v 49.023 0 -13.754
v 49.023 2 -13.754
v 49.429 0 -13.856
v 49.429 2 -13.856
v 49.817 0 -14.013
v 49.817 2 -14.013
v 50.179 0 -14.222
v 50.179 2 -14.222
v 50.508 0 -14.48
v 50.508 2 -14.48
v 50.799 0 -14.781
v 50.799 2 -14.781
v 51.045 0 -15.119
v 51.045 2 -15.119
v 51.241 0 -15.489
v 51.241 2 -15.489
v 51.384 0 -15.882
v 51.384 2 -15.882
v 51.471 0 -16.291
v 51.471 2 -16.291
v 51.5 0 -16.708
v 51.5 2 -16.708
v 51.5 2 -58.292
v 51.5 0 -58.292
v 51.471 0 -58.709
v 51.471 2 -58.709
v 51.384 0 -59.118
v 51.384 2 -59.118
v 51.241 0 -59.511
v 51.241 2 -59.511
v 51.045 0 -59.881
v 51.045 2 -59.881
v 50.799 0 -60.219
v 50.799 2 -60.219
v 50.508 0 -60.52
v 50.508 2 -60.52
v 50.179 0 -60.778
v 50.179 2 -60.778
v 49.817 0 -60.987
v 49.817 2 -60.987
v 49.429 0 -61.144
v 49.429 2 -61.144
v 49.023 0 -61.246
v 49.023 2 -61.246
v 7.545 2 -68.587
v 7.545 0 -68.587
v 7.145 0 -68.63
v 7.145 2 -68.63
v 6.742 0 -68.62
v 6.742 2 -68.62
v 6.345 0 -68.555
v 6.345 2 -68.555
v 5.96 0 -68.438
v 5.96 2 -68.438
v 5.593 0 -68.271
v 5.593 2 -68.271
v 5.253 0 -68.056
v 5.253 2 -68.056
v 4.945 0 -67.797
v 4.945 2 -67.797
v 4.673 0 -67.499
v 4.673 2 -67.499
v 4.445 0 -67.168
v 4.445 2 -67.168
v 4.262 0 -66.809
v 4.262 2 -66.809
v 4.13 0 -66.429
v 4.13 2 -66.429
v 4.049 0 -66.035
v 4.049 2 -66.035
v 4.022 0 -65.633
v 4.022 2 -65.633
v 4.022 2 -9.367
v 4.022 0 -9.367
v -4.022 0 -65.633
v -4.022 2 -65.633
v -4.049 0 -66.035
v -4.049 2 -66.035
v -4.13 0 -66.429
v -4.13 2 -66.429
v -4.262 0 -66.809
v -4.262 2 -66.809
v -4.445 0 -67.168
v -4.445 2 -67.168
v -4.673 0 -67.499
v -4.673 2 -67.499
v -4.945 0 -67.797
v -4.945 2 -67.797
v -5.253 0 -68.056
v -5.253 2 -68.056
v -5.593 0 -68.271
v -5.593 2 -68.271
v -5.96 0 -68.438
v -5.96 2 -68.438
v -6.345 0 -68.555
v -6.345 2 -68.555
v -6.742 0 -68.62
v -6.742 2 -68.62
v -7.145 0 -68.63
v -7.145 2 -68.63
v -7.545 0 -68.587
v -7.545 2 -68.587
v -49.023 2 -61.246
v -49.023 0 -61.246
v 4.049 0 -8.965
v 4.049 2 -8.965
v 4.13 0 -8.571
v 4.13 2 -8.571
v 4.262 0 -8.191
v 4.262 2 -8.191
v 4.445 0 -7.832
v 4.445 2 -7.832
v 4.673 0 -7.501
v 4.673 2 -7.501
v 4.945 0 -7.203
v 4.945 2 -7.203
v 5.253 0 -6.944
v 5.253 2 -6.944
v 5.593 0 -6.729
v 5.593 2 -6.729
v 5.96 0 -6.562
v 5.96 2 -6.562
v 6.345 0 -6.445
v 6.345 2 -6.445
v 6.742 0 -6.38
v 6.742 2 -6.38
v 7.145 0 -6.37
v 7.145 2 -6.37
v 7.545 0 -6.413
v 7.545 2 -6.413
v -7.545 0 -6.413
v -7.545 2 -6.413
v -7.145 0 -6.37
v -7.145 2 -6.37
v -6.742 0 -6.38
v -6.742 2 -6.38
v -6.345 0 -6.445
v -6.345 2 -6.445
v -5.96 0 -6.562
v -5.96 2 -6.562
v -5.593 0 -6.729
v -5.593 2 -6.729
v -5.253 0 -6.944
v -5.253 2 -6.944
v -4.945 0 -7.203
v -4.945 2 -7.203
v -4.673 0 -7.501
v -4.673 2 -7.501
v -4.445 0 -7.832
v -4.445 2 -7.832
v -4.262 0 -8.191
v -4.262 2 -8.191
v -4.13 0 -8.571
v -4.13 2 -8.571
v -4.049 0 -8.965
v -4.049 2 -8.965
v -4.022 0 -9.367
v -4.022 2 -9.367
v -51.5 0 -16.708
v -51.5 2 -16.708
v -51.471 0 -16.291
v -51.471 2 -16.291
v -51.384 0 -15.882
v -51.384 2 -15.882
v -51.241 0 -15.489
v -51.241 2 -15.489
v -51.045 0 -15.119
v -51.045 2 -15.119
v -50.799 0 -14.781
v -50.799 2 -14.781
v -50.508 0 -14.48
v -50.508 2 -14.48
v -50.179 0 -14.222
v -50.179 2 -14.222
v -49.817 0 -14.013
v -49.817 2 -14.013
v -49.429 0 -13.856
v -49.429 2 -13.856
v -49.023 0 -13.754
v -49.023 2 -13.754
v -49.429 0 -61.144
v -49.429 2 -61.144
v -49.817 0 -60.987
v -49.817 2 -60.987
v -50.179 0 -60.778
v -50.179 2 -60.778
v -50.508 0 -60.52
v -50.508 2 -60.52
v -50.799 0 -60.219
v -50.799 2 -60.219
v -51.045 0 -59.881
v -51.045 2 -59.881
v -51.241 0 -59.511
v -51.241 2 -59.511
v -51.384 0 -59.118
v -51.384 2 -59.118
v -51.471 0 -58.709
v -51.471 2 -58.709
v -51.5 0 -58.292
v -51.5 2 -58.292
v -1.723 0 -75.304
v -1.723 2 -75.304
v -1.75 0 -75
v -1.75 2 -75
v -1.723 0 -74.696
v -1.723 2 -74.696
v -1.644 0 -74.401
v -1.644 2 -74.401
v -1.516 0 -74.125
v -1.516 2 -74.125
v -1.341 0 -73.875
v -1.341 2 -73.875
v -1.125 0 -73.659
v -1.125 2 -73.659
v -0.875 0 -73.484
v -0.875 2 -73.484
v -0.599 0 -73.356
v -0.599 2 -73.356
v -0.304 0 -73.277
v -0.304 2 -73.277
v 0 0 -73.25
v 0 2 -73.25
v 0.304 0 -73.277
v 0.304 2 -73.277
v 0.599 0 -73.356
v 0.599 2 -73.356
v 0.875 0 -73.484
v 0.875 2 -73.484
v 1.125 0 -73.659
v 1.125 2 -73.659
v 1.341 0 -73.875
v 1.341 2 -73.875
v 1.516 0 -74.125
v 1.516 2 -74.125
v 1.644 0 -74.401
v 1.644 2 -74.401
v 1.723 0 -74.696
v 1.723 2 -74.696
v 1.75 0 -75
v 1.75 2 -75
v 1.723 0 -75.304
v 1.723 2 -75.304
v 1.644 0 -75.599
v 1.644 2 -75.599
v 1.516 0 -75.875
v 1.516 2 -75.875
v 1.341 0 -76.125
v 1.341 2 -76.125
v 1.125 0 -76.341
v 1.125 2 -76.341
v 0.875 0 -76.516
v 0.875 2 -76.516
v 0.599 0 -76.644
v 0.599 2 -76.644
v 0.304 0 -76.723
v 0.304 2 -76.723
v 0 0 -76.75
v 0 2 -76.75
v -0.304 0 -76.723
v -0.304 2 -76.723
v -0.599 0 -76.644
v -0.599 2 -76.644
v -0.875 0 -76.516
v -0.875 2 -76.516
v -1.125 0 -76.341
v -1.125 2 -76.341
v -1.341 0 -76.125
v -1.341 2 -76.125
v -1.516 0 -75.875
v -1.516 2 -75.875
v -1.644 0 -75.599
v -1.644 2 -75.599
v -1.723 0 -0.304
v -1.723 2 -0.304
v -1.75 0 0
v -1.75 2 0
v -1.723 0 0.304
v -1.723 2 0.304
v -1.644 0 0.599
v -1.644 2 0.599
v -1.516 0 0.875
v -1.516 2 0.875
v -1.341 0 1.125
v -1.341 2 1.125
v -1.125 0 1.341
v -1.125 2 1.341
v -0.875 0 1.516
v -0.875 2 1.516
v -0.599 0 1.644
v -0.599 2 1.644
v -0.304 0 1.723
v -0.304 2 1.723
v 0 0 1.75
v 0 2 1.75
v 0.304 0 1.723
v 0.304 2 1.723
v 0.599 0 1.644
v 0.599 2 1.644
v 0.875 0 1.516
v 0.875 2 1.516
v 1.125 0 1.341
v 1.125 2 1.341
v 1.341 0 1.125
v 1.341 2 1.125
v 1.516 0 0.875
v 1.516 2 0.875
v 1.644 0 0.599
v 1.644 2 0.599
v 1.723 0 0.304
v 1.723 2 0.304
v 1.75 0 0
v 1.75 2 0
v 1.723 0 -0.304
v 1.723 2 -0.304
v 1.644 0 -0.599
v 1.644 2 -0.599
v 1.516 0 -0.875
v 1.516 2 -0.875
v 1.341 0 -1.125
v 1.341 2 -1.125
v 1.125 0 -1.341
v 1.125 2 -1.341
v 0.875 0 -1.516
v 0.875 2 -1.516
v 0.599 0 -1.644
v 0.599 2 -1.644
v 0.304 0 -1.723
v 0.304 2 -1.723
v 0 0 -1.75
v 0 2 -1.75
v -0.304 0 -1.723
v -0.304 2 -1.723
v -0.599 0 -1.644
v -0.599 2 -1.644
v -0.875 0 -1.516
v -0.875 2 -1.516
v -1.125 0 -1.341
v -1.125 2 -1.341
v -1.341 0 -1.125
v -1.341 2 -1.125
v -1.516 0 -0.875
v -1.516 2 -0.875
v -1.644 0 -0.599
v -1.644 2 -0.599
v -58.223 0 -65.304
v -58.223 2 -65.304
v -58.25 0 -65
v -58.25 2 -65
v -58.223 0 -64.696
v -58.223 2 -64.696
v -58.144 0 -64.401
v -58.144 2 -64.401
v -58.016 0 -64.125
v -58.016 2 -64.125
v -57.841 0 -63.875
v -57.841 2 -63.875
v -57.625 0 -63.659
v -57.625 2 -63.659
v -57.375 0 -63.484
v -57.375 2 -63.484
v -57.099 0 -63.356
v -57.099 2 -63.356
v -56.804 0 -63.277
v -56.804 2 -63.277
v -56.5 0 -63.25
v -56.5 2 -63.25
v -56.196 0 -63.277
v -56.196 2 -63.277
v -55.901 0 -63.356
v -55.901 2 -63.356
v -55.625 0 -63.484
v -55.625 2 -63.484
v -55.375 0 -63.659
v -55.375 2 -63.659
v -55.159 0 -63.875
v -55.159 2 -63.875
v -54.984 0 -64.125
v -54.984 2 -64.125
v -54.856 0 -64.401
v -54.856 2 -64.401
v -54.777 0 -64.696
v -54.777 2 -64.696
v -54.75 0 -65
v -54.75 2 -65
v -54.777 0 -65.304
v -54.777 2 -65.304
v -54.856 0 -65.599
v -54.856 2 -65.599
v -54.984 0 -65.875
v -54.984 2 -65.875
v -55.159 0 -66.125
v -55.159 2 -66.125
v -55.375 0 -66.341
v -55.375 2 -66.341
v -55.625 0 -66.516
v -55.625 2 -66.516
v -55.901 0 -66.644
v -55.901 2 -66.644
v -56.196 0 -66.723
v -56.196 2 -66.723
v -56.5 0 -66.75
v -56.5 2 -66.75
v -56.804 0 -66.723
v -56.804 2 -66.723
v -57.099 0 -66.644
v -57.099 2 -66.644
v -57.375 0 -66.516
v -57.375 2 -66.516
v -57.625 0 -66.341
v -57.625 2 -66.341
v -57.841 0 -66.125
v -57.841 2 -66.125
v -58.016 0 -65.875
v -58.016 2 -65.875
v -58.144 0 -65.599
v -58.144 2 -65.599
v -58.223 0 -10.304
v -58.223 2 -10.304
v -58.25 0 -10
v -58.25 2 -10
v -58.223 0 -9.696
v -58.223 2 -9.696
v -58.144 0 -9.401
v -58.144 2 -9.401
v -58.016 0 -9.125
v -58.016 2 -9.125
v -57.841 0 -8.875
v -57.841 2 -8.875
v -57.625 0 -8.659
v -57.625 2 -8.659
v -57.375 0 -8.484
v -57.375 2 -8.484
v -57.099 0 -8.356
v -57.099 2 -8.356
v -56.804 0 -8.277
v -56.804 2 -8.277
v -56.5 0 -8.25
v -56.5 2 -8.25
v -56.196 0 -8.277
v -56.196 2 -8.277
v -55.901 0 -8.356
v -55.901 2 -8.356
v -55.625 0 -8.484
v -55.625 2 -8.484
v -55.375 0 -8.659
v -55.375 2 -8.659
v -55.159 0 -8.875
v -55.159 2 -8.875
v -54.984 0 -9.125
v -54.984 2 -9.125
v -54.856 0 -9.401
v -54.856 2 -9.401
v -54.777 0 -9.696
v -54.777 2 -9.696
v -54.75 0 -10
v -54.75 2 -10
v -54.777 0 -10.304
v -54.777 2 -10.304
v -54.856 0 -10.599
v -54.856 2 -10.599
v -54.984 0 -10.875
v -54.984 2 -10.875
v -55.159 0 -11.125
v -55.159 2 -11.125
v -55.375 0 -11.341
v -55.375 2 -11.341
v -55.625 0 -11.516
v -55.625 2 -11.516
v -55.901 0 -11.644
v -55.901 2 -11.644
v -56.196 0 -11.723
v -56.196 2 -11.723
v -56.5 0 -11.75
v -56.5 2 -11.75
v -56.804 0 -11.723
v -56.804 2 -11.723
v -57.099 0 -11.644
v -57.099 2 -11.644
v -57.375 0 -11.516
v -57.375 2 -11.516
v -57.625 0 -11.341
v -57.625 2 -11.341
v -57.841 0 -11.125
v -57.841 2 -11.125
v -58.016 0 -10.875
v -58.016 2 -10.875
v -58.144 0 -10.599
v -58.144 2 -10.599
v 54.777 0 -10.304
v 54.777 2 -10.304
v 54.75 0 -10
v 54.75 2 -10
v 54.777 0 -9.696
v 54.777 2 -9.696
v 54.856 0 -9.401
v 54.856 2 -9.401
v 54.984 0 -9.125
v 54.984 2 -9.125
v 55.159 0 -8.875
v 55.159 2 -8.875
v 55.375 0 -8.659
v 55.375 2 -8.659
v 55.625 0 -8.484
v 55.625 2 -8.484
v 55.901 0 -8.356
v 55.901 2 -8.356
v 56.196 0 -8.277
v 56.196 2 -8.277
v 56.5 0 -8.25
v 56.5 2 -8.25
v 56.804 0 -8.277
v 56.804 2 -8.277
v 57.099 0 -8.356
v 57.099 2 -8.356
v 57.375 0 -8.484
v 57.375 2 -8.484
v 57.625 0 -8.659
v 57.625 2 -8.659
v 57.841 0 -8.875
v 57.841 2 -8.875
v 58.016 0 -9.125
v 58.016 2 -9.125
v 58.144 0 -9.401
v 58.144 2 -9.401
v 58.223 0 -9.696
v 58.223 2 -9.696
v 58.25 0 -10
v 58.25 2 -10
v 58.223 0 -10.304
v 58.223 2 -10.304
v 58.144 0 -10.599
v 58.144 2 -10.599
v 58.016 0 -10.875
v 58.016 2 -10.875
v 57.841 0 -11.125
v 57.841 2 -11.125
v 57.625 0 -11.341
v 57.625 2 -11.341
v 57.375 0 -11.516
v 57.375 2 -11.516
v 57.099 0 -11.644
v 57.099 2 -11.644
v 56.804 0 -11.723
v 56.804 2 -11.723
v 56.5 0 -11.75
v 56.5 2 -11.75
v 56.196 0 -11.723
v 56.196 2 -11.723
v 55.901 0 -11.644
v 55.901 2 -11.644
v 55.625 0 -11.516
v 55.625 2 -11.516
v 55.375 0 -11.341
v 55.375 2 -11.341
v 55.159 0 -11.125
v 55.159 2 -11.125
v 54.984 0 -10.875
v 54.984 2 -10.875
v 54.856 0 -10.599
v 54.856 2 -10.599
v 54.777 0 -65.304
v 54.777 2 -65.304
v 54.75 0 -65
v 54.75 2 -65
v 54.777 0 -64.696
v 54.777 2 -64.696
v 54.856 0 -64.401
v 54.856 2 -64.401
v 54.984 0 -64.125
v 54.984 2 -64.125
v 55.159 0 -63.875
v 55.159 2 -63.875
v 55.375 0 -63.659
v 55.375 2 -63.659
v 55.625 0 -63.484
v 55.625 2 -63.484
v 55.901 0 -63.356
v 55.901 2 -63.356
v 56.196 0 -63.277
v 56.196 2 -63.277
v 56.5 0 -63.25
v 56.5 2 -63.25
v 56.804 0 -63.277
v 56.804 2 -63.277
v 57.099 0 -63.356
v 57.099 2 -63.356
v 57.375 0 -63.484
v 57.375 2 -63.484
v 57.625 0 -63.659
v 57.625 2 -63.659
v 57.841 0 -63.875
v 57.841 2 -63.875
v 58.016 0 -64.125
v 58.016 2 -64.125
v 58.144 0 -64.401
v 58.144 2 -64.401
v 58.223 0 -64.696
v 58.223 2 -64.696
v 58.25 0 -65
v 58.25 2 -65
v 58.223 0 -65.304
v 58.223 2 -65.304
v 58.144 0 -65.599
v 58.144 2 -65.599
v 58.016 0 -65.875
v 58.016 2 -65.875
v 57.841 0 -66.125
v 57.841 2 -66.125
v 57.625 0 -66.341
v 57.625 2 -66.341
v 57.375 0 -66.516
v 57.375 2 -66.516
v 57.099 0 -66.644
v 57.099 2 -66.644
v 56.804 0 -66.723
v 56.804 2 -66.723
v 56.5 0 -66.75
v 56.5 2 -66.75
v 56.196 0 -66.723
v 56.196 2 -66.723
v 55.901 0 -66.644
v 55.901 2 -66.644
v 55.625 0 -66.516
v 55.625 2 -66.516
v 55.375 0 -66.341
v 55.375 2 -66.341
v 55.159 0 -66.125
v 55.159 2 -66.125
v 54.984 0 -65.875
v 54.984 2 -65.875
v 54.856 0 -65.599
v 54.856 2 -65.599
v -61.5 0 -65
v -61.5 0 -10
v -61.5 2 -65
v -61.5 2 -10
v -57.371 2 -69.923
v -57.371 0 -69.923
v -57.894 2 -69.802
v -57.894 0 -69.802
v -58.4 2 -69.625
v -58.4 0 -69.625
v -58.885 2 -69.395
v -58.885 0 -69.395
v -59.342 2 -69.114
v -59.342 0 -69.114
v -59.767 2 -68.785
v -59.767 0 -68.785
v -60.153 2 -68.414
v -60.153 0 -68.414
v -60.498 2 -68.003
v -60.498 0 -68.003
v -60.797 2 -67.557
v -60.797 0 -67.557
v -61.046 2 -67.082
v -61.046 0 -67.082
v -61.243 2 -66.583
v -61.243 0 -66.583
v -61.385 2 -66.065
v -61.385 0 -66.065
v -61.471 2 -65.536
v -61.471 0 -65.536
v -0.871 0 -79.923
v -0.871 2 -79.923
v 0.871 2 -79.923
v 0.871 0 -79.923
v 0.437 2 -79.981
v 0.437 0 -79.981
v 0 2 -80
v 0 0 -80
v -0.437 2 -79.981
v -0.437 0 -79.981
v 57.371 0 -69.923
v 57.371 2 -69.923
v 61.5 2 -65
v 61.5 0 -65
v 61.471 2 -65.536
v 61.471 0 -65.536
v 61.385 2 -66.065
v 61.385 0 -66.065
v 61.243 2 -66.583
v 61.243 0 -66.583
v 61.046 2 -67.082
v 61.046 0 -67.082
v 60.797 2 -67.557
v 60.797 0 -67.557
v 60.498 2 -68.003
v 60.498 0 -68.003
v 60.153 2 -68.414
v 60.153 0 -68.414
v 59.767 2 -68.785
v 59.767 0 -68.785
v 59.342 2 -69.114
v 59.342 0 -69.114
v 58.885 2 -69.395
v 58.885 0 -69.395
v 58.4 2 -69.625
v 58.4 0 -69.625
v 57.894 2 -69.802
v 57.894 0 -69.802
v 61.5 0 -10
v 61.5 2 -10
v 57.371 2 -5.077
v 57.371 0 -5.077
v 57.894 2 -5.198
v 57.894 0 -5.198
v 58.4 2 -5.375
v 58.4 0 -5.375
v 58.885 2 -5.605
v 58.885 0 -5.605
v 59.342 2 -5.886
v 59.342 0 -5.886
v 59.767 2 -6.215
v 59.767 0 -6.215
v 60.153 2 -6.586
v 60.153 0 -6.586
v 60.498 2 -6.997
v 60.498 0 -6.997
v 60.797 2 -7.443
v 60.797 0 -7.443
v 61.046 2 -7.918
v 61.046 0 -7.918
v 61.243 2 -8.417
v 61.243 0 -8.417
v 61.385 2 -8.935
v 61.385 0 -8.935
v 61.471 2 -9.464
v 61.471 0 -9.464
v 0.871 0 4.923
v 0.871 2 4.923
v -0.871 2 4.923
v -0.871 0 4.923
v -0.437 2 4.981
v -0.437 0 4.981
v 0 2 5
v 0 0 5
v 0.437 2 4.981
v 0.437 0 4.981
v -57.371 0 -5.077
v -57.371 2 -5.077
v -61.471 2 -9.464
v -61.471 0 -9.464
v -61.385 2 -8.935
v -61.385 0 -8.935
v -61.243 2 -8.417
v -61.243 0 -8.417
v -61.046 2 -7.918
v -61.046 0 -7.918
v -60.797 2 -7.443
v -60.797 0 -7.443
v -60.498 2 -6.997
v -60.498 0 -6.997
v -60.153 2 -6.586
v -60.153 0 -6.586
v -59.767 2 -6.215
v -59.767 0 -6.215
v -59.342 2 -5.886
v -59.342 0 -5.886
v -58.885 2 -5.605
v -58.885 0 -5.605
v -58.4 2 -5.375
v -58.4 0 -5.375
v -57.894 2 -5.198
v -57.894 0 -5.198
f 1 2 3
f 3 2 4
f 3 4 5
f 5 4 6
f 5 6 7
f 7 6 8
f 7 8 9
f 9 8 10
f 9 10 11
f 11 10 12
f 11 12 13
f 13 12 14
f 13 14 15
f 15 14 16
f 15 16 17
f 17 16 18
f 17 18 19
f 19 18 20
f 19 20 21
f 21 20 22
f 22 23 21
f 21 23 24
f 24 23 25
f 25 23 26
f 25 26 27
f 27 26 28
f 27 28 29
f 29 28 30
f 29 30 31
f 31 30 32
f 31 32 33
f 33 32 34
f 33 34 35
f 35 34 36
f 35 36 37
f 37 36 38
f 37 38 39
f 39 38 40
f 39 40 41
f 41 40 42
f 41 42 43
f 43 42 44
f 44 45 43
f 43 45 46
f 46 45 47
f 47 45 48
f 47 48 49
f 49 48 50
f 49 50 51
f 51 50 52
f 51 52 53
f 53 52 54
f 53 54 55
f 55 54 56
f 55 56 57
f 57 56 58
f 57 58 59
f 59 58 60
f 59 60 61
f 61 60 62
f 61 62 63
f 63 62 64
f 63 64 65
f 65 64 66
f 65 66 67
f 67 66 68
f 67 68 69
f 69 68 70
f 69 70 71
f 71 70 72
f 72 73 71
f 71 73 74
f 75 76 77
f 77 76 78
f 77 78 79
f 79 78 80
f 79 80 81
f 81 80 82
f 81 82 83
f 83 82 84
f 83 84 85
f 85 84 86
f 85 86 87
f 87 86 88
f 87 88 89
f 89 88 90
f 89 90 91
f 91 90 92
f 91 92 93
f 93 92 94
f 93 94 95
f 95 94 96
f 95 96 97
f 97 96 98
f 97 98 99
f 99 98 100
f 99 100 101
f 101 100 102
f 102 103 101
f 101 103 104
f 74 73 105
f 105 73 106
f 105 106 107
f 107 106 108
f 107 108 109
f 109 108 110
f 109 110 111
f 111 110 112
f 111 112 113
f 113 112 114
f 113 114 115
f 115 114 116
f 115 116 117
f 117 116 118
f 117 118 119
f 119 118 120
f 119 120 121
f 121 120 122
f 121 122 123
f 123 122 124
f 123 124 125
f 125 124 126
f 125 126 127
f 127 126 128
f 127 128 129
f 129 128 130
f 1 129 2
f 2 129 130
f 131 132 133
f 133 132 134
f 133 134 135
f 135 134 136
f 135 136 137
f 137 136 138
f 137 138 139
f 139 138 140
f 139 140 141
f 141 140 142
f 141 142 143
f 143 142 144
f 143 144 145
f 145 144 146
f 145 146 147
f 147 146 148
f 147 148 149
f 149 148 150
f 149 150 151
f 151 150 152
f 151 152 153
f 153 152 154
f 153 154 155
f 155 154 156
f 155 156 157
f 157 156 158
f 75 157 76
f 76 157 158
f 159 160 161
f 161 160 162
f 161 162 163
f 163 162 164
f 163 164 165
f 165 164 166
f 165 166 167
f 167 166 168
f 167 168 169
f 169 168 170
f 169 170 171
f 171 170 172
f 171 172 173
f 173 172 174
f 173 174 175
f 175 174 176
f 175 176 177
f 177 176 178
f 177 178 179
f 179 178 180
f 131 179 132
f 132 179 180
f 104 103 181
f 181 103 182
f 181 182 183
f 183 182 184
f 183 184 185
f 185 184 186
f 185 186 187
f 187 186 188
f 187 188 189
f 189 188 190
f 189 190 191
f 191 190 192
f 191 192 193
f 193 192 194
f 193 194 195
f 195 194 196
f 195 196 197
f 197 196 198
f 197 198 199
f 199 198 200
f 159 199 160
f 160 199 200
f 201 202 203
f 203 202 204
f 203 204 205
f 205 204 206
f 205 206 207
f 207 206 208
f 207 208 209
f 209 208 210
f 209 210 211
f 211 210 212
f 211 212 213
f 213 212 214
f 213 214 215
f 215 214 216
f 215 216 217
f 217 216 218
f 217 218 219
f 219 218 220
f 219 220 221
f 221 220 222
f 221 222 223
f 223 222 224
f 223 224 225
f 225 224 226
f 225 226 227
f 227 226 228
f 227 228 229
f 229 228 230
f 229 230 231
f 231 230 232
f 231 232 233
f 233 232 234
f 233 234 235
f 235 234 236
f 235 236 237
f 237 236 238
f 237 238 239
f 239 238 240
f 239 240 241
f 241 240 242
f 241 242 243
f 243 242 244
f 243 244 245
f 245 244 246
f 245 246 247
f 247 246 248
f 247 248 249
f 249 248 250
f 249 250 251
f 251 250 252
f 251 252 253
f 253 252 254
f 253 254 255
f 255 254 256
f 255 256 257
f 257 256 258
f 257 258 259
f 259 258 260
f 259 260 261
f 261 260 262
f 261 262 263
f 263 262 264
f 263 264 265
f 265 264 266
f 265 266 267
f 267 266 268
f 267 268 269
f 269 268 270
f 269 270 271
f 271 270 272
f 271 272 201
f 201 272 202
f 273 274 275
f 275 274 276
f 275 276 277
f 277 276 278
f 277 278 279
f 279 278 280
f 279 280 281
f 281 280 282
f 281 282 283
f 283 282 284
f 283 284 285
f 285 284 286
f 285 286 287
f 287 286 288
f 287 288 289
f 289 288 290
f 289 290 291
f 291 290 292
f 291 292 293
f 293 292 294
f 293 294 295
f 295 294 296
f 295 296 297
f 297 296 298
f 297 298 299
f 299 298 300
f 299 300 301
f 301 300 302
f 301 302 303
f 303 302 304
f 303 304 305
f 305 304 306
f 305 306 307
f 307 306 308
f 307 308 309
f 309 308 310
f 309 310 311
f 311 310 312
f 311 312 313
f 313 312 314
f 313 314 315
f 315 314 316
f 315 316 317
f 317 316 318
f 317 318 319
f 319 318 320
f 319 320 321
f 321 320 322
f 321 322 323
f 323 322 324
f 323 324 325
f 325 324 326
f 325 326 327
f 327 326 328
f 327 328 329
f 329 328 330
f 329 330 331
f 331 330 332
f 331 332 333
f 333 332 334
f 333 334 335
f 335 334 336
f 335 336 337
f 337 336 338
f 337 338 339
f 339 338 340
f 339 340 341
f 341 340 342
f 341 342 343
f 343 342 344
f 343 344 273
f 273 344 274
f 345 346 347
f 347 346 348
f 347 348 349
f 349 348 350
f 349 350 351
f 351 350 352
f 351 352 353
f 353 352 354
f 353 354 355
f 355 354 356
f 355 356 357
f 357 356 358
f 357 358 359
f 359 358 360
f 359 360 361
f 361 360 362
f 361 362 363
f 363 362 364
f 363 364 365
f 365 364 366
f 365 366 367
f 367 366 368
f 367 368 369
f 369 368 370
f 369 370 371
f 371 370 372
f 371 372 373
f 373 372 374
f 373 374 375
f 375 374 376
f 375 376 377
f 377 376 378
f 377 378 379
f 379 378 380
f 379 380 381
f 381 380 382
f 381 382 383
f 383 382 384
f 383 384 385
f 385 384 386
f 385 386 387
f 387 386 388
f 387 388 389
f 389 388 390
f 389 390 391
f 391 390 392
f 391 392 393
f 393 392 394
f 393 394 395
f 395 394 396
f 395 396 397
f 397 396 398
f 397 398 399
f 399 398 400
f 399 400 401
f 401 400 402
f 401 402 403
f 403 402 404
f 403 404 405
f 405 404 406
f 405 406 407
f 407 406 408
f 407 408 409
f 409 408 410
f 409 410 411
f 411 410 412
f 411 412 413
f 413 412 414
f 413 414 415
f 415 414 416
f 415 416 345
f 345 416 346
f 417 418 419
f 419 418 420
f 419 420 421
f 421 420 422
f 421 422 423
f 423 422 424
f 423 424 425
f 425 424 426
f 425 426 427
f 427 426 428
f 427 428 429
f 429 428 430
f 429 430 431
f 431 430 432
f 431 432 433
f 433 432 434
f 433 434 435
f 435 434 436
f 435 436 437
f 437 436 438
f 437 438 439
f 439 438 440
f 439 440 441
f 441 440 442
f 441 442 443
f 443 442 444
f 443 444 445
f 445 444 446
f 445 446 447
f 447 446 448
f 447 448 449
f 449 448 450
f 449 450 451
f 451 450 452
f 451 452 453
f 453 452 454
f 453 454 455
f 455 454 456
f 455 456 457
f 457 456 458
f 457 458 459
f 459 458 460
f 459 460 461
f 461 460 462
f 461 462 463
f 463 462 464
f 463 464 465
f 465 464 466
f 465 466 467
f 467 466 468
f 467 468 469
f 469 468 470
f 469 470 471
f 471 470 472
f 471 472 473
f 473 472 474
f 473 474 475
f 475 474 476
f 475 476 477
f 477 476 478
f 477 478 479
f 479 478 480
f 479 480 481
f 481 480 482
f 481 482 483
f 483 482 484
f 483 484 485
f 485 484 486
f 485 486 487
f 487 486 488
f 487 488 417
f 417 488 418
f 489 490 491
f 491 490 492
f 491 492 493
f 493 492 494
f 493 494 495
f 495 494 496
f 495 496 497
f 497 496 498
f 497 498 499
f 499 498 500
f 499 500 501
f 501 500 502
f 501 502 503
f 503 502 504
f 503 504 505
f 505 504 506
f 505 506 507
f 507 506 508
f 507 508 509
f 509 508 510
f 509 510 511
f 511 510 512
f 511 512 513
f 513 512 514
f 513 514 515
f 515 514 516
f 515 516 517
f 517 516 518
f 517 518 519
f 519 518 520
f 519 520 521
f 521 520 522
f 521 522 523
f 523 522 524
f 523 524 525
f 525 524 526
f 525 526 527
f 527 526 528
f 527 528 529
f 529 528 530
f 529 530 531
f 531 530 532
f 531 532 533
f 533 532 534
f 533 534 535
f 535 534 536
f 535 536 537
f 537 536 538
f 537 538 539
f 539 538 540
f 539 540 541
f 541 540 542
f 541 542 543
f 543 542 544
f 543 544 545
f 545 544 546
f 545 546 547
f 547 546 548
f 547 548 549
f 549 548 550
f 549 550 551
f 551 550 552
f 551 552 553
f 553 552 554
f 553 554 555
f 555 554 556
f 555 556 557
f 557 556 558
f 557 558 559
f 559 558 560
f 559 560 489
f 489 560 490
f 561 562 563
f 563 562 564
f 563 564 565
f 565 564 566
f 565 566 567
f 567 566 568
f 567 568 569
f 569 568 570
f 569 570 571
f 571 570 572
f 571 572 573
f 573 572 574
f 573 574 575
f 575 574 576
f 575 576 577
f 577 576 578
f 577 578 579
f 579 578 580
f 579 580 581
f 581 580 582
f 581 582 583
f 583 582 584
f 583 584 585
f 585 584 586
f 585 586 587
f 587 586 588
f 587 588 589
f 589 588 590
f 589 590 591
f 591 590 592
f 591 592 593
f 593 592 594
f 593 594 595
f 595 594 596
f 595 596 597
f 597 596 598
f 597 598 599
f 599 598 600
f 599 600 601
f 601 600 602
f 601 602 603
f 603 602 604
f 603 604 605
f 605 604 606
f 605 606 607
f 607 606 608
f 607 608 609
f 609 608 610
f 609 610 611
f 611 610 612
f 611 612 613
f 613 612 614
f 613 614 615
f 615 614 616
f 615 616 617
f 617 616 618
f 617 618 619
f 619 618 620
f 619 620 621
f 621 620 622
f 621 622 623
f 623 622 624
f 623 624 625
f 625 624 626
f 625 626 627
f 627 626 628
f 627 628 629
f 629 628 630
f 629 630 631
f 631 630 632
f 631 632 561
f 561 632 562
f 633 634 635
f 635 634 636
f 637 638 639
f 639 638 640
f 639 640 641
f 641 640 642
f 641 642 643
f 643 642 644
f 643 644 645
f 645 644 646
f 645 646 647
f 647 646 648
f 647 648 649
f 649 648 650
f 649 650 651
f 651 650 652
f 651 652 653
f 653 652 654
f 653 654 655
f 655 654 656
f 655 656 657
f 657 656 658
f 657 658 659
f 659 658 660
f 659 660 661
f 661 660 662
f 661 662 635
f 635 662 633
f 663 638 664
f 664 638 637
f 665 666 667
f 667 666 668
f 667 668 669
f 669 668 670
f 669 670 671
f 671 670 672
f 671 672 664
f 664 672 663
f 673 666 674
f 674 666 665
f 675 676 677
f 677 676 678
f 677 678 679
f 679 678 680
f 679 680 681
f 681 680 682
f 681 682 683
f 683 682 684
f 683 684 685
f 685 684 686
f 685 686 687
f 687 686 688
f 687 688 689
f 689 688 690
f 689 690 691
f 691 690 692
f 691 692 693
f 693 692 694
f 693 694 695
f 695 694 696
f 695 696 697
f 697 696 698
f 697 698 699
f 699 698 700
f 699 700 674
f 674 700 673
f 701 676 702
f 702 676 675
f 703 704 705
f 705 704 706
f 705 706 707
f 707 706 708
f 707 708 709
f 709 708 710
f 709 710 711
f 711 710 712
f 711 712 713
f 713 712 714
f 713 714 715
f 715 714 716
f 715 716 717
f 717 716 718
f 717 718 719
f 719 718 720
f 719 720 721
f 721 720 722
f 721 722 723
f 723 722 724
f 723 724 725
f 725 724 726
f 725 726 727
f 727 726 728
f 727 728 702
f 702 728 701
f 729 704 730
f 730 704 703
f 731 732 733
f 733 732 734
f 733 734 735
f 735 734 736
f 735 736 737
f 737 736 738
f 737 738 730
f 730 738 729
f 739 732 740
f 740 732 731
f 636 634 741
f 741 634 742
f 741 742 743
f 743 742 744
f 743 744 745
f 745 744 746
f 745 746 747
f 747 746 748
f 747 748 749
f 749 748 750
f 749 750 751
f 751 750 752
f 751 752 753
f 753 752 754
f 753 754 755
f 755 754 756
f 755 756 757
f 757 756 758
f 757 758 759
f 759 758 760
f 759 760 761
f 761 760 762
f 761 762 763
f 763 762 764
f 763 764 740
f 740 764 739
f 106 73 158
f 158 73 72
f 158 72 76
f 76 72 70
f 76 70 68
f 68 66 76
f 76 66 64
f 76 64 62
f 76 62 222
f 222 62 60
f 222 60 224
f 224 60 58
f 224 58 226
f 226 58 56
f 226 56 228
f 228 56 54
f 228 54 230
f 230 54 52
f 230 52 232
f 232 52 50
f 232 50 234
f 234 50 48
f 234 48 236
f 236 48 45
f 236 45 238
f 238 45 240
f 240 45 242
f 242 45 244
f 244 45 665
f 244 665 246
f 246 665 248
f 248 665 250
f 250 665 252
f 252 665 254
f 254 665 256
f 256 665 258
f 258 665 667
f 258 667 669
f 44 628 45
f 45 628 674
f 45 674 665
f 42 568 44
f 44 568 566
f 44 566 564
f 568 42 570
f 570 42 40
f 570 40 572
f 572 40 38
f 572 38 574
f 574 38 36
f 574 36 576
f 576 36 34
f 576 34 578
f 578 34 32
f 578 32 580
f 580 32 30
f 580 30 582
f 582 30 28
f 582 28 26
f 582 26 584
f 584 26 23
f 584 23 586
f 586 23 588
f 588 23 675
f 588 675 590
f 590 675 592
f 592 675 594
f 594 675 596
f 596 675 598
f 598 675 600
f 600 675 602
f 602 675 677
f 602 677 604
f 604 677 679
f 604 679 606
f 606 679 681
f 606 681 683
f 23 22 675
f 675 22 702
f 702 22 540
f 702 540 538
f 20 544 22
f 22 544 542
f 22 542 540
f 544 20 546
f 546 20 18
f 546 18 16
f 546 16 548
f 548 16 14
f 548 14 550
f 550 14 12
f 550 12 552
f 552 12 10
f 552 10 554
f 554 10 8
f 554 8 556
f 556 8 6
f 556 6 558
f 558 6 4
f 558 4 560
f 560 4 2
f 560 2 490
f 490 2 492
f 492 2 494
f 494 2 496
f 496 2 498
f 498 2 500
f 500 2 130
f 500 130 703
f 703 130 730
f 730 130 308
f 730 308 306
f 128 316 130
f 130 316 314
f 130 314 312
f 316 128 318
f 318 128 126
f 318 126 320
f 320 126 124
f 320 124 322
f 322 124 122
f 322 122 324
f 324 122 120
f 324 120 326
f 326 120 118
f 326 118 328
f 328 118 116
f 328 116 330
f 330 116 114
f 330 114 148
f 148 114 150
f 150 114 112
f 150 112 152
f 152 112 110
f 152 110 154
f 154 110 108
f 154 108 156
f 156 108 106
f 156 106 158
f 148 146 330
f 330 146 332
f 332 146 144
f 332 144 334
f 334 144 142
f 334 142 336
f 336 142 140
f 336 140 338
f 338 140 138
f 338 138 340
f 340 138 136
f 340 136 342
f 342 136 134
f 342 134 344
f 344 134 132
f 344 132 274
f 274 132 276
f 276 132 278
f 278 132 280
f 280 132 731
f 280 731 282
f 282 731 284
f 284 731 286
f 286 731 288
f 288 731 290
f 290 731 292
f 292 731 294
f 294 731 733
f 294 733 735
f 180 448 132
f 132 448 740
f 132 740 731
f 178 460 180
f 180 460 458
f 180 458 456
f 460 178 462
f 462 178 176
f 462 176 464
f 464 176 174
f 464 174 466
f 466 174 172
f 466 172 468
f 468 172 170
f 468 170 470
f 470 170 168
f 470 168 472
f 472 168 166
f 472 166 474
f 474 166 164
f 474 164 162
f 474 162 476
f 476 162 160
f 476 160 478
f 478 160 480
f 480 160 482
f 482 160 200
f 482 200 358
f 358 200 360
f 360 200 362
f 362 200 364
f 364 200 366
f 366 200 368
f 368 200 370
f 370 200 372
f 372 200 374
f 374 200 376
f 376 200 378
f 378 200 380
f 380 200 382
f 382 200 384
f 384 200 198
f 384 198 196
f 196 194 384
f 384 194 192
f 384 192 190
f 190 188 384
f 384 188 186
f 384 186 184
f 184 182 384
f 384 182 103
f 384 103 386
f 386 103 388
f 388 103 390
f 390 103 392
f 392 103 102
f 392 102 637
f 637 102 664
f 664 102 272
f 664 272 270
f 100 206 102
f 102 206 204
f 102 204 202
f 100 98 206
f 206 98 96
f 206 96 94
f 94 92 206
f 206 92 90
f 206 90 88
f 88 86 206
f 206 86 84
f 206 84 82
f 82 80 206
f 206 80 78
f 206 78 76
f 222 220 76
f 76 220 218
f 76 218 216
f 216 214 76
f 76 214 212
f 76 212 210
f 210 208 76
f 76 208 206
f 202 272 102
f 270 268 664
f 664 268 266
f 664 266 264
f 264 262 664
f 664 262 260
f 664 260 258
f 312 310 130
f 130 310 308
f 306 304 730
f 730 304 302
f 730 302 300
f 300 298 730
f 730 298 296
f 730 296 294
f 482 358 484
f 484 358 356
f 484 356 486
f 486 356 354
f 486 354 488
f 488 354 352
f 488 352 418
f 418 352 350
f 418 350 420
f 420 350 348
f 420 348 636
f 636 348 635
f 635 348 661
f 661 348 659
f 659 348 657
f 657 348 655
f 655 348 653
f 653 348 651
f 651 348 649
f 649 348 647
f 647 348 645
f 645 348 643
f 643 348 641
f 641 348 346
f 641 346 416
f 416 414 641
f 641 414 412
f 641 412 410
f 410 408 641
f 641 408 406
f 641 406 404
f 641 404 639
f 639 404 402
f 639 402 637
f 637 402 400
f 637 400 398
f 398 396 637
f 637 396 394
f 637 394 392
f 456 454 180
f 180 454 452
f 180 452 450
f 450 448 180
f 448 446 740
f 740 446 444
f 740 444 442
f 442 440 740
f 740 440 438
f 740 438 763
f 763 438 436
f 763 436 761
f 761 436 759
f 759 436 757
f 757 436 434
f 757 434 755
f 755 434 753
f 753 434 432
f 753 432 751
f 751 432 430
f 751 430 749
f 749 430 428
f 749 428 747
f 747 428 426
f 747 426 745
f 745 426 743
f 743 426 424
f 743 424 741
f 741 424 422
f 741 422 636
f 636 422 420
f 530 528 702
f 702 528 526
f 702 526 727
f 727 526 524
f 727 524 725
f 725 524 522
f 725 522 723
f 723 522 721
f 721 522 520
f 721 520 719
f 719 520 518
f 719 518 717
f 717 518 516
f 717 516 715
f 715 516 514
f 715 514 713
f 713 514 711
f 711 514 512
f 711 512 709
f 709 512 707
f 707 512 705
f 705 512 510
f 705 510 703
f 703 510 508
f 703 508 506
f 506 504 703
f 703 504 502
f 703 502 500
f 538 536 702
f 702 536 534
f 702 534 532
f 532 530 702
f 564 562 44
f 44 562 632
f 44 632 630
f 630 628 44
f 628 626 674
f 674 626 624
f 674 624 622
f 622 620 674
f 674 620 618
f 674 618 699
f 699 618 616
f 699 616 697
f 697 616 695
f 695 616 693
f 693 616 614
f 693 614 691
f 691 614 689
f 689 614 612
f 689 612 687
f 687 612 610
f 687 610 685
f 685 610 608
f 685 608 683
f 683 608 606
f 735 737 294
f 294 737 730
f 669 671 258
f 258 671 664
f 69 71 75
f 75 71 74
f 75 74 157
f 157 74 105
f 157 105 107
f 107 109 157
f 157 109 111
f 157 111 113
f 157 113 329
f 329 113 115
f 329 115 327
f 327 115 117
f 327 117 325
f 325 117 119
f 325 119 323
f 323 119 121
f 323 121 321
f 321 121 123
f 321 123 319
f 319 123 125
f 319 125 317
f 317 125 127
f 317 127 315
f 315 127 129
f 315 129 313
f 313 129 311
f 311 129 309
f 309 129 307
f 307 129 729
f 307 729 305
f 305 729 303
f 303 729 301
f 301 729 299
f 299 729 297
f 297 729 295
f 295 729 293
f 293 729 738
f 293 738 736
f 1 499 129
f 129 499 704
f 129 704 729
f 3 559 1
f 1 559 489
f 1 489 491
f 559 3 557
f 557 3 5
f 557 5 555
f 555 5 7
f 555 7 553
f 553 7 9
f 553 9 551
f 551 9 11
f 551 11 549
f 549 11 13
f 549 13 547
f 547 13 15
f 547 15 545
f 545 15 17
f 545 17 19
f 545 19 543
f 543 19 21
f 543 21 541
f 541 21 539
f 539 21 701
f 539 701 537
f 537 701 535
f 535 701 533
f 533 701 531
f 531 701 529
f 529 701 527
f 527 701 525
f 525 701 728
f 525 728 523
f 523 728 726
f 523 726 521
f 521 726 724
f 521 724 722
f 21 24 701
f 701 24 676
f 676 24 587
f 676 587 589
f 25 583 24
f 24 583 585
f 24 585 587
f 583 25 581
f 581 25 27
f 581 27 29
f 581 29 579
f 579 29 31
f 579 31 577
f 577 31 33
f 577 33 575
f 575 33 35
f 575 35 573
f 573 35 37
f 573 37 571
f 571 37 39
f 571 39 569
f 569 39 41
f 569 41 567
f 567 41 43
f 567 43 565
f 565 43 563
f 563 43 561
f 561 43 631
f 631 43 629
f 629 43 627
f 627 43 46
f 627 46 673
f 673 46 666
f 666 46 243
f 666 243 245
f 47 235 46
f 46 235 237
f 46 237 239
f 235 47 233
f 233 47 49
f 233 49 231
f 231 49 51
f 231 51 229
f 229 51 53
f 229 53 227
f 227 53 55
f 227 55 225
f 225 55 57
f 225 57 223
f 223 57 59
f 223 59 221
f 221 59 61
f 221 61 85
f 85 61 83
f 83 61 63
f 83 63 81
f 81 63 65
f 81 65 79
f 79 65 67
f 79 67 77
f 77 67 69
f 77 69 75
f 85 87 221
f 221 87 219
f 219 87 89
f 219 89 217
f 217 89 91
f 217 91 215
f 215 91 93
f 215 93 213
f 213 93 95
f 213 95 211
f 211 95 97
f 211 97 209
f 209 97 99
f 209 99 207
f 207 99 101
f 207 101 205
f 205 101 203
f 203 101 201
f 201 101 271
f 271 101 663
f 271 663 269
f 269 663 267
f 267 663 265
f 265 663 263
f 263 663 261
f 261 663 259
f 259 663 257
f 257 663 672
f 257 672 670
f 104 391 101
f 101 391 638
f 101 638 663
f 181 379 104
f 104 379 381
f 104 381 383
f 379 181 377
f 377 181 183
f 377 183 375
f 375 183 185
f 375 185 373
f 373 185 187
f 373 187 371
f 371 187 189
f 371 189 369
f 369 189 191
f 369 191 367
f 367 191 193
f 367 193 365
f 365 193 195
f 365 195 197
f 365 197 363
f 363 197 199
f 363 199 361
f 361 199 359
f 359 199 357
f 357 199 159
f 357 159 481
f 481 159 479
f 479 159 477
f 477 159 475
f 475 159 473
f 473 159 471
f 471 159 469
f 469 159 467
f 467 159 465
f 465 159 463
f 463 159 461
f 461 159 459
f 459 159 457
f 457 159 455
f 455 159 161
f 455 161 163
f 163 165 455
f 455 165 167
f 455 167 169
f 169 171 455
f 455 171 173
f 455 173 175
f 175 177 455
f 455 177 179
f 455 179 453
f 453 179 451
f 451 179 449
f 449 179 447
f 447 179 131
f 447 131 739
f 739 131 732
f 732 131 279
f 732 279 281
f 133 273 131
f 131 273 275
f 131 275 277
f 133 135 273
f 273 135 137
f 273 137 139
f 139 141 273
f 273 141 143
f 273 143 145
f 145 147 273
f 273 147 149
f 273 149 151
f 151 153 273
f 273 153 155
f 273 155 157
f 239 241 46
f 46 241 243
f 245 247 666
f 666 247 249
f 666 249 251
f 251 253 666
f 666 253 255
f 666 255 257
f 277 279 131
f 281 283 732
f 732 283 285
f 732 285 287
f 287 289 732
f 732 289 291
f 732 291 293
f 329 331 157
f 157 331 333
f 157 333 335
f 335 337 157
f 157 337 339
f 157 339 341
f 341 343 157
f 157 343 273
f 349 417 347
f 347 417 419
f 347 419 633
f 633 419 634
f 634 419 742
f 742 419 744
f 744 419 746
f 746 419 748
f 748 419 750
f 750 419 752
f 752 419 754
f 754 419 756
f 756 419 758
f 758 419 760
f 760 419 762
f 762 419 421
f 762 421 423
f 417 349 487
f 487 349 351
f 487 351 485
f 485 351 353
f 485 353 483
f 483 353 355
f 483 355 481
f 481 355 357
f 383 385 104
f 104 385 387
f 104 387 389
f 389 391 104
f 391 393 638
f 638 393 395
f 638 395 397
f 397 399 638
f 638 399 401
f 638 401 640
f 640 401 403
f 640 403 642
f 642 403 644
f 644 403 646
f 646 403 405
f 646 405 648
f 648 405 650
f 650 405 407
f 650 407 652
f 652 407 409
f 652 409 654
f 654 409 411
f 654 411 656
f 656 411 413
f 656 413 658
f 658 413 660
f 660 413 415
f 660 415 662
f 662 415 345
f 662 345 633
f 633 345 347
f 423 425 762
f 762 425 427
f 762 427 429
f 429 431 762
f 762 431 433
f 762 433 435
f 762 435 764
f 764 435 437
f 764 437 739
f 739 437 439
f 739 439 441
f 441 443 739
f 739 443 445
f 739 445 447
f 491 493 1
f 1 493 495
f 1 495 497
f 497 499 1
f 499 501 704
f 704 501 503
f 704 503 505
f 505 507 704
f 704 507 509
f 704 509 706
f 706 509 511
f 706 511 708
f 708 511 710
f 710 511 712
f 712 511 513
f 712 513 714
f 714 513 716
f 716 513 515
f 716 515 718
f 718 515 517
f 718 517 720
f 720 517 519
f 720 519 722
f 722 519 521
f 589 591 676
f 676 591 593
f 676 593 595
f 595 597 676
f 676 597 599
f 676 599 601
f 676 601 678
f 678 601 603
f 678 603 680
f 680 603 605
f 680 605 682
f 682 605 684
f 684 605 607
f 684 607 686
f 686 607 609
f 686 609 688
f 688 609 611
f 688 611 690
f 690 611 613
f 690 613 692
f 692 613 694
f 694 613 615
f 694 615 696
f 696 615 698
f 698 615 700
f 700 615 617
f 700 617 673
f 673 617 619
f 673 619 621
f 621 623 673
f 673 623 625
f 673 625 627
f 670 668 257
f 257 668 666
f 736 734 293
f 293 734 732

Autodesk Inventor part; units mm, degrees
ref_plane "YZ Plane" through (0, 0, 0) normal (1, 0, 0) x (0, 1, 0)
ref_plane "XZ Plane" through (0, 0, 0) normal (0, 1, 0) x (-1, 0, 0)
ref_plane "XY Plane" through (0, 0, 0) normal (0, 0, 1) x (1, 0, 0)
sketch "Szkic1" plane through (0, 0, 0) normal (0, 1, 0) x (-1, 0, 0)
  line L0 (0, 0) -> (0, -75) construction
  line L1 (-56.5, -37.5) -> (56.5, -37.5) construction
  line L2 (56.5, -10) -> (56.5, -65) construction
  line L3 (-56.5, -10) -> (-56.5, -65) construction
  circle A0 centre (56.5, -10) radius 5
  circle A1 centre (56.5, -65) radius 5
  circle A2 centre (0, 0) radius 5
  circle A3 centre (0, -75) radius 5
  circle A4 centre (-56.5, -10) radius 5
  circle A5 centre (-56.5, -65) radius 5
  line L4 (0.8714, 4.9235) -> (57.3714, -5.0765)
  line L5 (57.3714, -69.9235) -> (0.8714, -79.9235)
  line L6 (-0.8714, -79.9235) -> (-57.3714, -69.9235)
  line L7 (-57.3714, -5.0765) -> (-0.8714, 4.9235)
  line L8 (-61.5, -10) -> (-61.5, -65)
  line L9 (61.5, -10) -> (61.5, -65)
  point P0 (0, -37.5)
  point P1 (0, -37.5)
  dimension "d0" = 75
  dimension "d1" = 113
  dimension "d2" = 55
  dimension "d3" = 55
  dimension "d4" = 10
  dimension "d5" = 10
  dimension "d6" = 10
  dimension "d7" = 10
  dimension "d8" = 10
  dimension "d9" = 10
extrude "Wyciągnięcie proste1" add sketch "Szkic1" along normal blind 2
sketch "Szkic2" plane through (0, 2, 0) normal (0, 1, 0) x (1, 0, 0)
  arc A0 (-0.8714, -4.9235) -> (0.8714, -4.9235) centre (0, 0) ccw projected
  arc A1 (0.8714, 79.9235) -> (-0.8714, 79.9235) centre (0, 75) ccw projected
  arc A2 (61.5, 65) -> (57.3714, 69.9235) centre (56.5, 65) ccw projected
  arc A3 (57.3714, 5.0765) -> (61.5, 10) centre (56.5, 10) ccw projected
  arc A4 (-61.5, 10) -> (-57.3714, 5.0765) centre (-56.5, 10) ccw projected
  arc A5 (-57.3714, 69.9235) -> (-61.5, 65) centre (-56.5, 65) ccw projected
hole "Otwór1" at (-56.5, 2, -65) at (-56.5, 2, -10) at (0, 2, 0) at (56.5, 2, -10) at (0, 2, -75) at (56.5, 2, -65) direction (0, -1, 0) diameter 3.5 depth 8
sketch "Szkic3" plane through (0, 2, 0) normal (0, 1, 0) x (1, 0, 0)
  circle A0 centre (0, 75) radius 1.75 projected
  circle A1 centre (0, 0) radius 1.75 projected
  circle A2 centre (-56.5, 65) radius 1.75 projected
  circle A3 centre (-56.5, 10) radius 1.75 projected
  circle A4 centre (56.5, 10) radius 1.75 projected
  circle A5 centre (56.5, 65) radius 1.75 projected
  arc A6 (-61.5, 10) -> (-57.3714, 5.0765) centre (-56.5, 10) ccw projected
  line L0 (-57.3714, 5.0765) -> (-0.8714, -4.9235) projected
  arc A7 (-0.8714, -4.9235) -> (0.8714, -4.9235) centre (0, 0) ccw projected
  line L1 (0.8714, -4.9235) -> (57.3714, 5.0765) projected
  arc A8 (57.3714, 5.0765) -> (61.5, 10) centre (56.5, 10) ccw projected
  line L2 (61.5, 10) -> (61.5, 65) projected
  arc A9 (61.5, 65) -> (57.3714, 69.9235) centre (56.5, 65) ccw projected
  line L3 (57.3714, 69.9235) -> (0.8714, 79.9235) projected
  arc A10 (0.8714, 79.9235) -> (-0.8714, 79.9235) centre (0, 75) ccw projected
  line L4 (-0.8714, 79.9235) -> (-57.3714, 69.9235) projected
  arc A11 (-57.3714, 69.9235) -> (-61.5, 65) centre (-56.5, 65) ccw projected
  line L5 (-61.5, 65) -> (-61.5, 10) projected
  line L6 (0, 5.0777) -> (-51.5, 14.1928)
  line L7 (-51.5, 14.1928) -> (-51.5, 60.8072)
  line L8 (-51.5, 60.8072) -> (0, 69.9223)
  line L9 (0, 69.9223) -> (51.5, 60.8072)
  line L10 (51.5, 60.8072) -> (51.5, 14.1928)
  line L11 (51.5, 14.1928) -> (0, 5.0777)
  circle A12 centre (0, 0) radius 1.75 projected
  circle A13 centre (0, 75) radius 1.75 projected
  line L12 (0, 0) -> (0, 75) construction
  line L13 (4.0221, 0) -> (4.0221, 75)
  line L14 (-4.0221, 75) -> (-4.0221, 0)
  arc A14 (-4.0221, 0) -> (4.0221, 0) centre (0, 0) ccw
  arc A15 (4.0221, 75) -> (-4.0221, 75) centre (0, 75) ccw
  point P0 (0, 37.5)
  point P1 (4.0221, 69.2104)
  point P2 (4.0221, 5.7896)
  point P3 (-4.0221, 5.7896)
  point P4 (-4.0221, 69.2104)
  dimension "d19" = 10
extrude "Wyciągnięcie proste2" cut sketch "Szkic3" against normal through all contours L6 L7 L8 L14 | L13 L9 L10 L11
fillet "Zaokrąglenie1" radius 3 8 edges at (-51.5, 1, -60.8072) (-51.5, 1, -14.1928) (-4.0221, 1, -5.7896) (4.0221, 1, -5.7896) (-4.0221, 1, -69.2104) (4.0221, 1, -69.2104) (51.5, 1, -60.8072) (51.5, 1, -14.1928)
properties part number "podstawa"
